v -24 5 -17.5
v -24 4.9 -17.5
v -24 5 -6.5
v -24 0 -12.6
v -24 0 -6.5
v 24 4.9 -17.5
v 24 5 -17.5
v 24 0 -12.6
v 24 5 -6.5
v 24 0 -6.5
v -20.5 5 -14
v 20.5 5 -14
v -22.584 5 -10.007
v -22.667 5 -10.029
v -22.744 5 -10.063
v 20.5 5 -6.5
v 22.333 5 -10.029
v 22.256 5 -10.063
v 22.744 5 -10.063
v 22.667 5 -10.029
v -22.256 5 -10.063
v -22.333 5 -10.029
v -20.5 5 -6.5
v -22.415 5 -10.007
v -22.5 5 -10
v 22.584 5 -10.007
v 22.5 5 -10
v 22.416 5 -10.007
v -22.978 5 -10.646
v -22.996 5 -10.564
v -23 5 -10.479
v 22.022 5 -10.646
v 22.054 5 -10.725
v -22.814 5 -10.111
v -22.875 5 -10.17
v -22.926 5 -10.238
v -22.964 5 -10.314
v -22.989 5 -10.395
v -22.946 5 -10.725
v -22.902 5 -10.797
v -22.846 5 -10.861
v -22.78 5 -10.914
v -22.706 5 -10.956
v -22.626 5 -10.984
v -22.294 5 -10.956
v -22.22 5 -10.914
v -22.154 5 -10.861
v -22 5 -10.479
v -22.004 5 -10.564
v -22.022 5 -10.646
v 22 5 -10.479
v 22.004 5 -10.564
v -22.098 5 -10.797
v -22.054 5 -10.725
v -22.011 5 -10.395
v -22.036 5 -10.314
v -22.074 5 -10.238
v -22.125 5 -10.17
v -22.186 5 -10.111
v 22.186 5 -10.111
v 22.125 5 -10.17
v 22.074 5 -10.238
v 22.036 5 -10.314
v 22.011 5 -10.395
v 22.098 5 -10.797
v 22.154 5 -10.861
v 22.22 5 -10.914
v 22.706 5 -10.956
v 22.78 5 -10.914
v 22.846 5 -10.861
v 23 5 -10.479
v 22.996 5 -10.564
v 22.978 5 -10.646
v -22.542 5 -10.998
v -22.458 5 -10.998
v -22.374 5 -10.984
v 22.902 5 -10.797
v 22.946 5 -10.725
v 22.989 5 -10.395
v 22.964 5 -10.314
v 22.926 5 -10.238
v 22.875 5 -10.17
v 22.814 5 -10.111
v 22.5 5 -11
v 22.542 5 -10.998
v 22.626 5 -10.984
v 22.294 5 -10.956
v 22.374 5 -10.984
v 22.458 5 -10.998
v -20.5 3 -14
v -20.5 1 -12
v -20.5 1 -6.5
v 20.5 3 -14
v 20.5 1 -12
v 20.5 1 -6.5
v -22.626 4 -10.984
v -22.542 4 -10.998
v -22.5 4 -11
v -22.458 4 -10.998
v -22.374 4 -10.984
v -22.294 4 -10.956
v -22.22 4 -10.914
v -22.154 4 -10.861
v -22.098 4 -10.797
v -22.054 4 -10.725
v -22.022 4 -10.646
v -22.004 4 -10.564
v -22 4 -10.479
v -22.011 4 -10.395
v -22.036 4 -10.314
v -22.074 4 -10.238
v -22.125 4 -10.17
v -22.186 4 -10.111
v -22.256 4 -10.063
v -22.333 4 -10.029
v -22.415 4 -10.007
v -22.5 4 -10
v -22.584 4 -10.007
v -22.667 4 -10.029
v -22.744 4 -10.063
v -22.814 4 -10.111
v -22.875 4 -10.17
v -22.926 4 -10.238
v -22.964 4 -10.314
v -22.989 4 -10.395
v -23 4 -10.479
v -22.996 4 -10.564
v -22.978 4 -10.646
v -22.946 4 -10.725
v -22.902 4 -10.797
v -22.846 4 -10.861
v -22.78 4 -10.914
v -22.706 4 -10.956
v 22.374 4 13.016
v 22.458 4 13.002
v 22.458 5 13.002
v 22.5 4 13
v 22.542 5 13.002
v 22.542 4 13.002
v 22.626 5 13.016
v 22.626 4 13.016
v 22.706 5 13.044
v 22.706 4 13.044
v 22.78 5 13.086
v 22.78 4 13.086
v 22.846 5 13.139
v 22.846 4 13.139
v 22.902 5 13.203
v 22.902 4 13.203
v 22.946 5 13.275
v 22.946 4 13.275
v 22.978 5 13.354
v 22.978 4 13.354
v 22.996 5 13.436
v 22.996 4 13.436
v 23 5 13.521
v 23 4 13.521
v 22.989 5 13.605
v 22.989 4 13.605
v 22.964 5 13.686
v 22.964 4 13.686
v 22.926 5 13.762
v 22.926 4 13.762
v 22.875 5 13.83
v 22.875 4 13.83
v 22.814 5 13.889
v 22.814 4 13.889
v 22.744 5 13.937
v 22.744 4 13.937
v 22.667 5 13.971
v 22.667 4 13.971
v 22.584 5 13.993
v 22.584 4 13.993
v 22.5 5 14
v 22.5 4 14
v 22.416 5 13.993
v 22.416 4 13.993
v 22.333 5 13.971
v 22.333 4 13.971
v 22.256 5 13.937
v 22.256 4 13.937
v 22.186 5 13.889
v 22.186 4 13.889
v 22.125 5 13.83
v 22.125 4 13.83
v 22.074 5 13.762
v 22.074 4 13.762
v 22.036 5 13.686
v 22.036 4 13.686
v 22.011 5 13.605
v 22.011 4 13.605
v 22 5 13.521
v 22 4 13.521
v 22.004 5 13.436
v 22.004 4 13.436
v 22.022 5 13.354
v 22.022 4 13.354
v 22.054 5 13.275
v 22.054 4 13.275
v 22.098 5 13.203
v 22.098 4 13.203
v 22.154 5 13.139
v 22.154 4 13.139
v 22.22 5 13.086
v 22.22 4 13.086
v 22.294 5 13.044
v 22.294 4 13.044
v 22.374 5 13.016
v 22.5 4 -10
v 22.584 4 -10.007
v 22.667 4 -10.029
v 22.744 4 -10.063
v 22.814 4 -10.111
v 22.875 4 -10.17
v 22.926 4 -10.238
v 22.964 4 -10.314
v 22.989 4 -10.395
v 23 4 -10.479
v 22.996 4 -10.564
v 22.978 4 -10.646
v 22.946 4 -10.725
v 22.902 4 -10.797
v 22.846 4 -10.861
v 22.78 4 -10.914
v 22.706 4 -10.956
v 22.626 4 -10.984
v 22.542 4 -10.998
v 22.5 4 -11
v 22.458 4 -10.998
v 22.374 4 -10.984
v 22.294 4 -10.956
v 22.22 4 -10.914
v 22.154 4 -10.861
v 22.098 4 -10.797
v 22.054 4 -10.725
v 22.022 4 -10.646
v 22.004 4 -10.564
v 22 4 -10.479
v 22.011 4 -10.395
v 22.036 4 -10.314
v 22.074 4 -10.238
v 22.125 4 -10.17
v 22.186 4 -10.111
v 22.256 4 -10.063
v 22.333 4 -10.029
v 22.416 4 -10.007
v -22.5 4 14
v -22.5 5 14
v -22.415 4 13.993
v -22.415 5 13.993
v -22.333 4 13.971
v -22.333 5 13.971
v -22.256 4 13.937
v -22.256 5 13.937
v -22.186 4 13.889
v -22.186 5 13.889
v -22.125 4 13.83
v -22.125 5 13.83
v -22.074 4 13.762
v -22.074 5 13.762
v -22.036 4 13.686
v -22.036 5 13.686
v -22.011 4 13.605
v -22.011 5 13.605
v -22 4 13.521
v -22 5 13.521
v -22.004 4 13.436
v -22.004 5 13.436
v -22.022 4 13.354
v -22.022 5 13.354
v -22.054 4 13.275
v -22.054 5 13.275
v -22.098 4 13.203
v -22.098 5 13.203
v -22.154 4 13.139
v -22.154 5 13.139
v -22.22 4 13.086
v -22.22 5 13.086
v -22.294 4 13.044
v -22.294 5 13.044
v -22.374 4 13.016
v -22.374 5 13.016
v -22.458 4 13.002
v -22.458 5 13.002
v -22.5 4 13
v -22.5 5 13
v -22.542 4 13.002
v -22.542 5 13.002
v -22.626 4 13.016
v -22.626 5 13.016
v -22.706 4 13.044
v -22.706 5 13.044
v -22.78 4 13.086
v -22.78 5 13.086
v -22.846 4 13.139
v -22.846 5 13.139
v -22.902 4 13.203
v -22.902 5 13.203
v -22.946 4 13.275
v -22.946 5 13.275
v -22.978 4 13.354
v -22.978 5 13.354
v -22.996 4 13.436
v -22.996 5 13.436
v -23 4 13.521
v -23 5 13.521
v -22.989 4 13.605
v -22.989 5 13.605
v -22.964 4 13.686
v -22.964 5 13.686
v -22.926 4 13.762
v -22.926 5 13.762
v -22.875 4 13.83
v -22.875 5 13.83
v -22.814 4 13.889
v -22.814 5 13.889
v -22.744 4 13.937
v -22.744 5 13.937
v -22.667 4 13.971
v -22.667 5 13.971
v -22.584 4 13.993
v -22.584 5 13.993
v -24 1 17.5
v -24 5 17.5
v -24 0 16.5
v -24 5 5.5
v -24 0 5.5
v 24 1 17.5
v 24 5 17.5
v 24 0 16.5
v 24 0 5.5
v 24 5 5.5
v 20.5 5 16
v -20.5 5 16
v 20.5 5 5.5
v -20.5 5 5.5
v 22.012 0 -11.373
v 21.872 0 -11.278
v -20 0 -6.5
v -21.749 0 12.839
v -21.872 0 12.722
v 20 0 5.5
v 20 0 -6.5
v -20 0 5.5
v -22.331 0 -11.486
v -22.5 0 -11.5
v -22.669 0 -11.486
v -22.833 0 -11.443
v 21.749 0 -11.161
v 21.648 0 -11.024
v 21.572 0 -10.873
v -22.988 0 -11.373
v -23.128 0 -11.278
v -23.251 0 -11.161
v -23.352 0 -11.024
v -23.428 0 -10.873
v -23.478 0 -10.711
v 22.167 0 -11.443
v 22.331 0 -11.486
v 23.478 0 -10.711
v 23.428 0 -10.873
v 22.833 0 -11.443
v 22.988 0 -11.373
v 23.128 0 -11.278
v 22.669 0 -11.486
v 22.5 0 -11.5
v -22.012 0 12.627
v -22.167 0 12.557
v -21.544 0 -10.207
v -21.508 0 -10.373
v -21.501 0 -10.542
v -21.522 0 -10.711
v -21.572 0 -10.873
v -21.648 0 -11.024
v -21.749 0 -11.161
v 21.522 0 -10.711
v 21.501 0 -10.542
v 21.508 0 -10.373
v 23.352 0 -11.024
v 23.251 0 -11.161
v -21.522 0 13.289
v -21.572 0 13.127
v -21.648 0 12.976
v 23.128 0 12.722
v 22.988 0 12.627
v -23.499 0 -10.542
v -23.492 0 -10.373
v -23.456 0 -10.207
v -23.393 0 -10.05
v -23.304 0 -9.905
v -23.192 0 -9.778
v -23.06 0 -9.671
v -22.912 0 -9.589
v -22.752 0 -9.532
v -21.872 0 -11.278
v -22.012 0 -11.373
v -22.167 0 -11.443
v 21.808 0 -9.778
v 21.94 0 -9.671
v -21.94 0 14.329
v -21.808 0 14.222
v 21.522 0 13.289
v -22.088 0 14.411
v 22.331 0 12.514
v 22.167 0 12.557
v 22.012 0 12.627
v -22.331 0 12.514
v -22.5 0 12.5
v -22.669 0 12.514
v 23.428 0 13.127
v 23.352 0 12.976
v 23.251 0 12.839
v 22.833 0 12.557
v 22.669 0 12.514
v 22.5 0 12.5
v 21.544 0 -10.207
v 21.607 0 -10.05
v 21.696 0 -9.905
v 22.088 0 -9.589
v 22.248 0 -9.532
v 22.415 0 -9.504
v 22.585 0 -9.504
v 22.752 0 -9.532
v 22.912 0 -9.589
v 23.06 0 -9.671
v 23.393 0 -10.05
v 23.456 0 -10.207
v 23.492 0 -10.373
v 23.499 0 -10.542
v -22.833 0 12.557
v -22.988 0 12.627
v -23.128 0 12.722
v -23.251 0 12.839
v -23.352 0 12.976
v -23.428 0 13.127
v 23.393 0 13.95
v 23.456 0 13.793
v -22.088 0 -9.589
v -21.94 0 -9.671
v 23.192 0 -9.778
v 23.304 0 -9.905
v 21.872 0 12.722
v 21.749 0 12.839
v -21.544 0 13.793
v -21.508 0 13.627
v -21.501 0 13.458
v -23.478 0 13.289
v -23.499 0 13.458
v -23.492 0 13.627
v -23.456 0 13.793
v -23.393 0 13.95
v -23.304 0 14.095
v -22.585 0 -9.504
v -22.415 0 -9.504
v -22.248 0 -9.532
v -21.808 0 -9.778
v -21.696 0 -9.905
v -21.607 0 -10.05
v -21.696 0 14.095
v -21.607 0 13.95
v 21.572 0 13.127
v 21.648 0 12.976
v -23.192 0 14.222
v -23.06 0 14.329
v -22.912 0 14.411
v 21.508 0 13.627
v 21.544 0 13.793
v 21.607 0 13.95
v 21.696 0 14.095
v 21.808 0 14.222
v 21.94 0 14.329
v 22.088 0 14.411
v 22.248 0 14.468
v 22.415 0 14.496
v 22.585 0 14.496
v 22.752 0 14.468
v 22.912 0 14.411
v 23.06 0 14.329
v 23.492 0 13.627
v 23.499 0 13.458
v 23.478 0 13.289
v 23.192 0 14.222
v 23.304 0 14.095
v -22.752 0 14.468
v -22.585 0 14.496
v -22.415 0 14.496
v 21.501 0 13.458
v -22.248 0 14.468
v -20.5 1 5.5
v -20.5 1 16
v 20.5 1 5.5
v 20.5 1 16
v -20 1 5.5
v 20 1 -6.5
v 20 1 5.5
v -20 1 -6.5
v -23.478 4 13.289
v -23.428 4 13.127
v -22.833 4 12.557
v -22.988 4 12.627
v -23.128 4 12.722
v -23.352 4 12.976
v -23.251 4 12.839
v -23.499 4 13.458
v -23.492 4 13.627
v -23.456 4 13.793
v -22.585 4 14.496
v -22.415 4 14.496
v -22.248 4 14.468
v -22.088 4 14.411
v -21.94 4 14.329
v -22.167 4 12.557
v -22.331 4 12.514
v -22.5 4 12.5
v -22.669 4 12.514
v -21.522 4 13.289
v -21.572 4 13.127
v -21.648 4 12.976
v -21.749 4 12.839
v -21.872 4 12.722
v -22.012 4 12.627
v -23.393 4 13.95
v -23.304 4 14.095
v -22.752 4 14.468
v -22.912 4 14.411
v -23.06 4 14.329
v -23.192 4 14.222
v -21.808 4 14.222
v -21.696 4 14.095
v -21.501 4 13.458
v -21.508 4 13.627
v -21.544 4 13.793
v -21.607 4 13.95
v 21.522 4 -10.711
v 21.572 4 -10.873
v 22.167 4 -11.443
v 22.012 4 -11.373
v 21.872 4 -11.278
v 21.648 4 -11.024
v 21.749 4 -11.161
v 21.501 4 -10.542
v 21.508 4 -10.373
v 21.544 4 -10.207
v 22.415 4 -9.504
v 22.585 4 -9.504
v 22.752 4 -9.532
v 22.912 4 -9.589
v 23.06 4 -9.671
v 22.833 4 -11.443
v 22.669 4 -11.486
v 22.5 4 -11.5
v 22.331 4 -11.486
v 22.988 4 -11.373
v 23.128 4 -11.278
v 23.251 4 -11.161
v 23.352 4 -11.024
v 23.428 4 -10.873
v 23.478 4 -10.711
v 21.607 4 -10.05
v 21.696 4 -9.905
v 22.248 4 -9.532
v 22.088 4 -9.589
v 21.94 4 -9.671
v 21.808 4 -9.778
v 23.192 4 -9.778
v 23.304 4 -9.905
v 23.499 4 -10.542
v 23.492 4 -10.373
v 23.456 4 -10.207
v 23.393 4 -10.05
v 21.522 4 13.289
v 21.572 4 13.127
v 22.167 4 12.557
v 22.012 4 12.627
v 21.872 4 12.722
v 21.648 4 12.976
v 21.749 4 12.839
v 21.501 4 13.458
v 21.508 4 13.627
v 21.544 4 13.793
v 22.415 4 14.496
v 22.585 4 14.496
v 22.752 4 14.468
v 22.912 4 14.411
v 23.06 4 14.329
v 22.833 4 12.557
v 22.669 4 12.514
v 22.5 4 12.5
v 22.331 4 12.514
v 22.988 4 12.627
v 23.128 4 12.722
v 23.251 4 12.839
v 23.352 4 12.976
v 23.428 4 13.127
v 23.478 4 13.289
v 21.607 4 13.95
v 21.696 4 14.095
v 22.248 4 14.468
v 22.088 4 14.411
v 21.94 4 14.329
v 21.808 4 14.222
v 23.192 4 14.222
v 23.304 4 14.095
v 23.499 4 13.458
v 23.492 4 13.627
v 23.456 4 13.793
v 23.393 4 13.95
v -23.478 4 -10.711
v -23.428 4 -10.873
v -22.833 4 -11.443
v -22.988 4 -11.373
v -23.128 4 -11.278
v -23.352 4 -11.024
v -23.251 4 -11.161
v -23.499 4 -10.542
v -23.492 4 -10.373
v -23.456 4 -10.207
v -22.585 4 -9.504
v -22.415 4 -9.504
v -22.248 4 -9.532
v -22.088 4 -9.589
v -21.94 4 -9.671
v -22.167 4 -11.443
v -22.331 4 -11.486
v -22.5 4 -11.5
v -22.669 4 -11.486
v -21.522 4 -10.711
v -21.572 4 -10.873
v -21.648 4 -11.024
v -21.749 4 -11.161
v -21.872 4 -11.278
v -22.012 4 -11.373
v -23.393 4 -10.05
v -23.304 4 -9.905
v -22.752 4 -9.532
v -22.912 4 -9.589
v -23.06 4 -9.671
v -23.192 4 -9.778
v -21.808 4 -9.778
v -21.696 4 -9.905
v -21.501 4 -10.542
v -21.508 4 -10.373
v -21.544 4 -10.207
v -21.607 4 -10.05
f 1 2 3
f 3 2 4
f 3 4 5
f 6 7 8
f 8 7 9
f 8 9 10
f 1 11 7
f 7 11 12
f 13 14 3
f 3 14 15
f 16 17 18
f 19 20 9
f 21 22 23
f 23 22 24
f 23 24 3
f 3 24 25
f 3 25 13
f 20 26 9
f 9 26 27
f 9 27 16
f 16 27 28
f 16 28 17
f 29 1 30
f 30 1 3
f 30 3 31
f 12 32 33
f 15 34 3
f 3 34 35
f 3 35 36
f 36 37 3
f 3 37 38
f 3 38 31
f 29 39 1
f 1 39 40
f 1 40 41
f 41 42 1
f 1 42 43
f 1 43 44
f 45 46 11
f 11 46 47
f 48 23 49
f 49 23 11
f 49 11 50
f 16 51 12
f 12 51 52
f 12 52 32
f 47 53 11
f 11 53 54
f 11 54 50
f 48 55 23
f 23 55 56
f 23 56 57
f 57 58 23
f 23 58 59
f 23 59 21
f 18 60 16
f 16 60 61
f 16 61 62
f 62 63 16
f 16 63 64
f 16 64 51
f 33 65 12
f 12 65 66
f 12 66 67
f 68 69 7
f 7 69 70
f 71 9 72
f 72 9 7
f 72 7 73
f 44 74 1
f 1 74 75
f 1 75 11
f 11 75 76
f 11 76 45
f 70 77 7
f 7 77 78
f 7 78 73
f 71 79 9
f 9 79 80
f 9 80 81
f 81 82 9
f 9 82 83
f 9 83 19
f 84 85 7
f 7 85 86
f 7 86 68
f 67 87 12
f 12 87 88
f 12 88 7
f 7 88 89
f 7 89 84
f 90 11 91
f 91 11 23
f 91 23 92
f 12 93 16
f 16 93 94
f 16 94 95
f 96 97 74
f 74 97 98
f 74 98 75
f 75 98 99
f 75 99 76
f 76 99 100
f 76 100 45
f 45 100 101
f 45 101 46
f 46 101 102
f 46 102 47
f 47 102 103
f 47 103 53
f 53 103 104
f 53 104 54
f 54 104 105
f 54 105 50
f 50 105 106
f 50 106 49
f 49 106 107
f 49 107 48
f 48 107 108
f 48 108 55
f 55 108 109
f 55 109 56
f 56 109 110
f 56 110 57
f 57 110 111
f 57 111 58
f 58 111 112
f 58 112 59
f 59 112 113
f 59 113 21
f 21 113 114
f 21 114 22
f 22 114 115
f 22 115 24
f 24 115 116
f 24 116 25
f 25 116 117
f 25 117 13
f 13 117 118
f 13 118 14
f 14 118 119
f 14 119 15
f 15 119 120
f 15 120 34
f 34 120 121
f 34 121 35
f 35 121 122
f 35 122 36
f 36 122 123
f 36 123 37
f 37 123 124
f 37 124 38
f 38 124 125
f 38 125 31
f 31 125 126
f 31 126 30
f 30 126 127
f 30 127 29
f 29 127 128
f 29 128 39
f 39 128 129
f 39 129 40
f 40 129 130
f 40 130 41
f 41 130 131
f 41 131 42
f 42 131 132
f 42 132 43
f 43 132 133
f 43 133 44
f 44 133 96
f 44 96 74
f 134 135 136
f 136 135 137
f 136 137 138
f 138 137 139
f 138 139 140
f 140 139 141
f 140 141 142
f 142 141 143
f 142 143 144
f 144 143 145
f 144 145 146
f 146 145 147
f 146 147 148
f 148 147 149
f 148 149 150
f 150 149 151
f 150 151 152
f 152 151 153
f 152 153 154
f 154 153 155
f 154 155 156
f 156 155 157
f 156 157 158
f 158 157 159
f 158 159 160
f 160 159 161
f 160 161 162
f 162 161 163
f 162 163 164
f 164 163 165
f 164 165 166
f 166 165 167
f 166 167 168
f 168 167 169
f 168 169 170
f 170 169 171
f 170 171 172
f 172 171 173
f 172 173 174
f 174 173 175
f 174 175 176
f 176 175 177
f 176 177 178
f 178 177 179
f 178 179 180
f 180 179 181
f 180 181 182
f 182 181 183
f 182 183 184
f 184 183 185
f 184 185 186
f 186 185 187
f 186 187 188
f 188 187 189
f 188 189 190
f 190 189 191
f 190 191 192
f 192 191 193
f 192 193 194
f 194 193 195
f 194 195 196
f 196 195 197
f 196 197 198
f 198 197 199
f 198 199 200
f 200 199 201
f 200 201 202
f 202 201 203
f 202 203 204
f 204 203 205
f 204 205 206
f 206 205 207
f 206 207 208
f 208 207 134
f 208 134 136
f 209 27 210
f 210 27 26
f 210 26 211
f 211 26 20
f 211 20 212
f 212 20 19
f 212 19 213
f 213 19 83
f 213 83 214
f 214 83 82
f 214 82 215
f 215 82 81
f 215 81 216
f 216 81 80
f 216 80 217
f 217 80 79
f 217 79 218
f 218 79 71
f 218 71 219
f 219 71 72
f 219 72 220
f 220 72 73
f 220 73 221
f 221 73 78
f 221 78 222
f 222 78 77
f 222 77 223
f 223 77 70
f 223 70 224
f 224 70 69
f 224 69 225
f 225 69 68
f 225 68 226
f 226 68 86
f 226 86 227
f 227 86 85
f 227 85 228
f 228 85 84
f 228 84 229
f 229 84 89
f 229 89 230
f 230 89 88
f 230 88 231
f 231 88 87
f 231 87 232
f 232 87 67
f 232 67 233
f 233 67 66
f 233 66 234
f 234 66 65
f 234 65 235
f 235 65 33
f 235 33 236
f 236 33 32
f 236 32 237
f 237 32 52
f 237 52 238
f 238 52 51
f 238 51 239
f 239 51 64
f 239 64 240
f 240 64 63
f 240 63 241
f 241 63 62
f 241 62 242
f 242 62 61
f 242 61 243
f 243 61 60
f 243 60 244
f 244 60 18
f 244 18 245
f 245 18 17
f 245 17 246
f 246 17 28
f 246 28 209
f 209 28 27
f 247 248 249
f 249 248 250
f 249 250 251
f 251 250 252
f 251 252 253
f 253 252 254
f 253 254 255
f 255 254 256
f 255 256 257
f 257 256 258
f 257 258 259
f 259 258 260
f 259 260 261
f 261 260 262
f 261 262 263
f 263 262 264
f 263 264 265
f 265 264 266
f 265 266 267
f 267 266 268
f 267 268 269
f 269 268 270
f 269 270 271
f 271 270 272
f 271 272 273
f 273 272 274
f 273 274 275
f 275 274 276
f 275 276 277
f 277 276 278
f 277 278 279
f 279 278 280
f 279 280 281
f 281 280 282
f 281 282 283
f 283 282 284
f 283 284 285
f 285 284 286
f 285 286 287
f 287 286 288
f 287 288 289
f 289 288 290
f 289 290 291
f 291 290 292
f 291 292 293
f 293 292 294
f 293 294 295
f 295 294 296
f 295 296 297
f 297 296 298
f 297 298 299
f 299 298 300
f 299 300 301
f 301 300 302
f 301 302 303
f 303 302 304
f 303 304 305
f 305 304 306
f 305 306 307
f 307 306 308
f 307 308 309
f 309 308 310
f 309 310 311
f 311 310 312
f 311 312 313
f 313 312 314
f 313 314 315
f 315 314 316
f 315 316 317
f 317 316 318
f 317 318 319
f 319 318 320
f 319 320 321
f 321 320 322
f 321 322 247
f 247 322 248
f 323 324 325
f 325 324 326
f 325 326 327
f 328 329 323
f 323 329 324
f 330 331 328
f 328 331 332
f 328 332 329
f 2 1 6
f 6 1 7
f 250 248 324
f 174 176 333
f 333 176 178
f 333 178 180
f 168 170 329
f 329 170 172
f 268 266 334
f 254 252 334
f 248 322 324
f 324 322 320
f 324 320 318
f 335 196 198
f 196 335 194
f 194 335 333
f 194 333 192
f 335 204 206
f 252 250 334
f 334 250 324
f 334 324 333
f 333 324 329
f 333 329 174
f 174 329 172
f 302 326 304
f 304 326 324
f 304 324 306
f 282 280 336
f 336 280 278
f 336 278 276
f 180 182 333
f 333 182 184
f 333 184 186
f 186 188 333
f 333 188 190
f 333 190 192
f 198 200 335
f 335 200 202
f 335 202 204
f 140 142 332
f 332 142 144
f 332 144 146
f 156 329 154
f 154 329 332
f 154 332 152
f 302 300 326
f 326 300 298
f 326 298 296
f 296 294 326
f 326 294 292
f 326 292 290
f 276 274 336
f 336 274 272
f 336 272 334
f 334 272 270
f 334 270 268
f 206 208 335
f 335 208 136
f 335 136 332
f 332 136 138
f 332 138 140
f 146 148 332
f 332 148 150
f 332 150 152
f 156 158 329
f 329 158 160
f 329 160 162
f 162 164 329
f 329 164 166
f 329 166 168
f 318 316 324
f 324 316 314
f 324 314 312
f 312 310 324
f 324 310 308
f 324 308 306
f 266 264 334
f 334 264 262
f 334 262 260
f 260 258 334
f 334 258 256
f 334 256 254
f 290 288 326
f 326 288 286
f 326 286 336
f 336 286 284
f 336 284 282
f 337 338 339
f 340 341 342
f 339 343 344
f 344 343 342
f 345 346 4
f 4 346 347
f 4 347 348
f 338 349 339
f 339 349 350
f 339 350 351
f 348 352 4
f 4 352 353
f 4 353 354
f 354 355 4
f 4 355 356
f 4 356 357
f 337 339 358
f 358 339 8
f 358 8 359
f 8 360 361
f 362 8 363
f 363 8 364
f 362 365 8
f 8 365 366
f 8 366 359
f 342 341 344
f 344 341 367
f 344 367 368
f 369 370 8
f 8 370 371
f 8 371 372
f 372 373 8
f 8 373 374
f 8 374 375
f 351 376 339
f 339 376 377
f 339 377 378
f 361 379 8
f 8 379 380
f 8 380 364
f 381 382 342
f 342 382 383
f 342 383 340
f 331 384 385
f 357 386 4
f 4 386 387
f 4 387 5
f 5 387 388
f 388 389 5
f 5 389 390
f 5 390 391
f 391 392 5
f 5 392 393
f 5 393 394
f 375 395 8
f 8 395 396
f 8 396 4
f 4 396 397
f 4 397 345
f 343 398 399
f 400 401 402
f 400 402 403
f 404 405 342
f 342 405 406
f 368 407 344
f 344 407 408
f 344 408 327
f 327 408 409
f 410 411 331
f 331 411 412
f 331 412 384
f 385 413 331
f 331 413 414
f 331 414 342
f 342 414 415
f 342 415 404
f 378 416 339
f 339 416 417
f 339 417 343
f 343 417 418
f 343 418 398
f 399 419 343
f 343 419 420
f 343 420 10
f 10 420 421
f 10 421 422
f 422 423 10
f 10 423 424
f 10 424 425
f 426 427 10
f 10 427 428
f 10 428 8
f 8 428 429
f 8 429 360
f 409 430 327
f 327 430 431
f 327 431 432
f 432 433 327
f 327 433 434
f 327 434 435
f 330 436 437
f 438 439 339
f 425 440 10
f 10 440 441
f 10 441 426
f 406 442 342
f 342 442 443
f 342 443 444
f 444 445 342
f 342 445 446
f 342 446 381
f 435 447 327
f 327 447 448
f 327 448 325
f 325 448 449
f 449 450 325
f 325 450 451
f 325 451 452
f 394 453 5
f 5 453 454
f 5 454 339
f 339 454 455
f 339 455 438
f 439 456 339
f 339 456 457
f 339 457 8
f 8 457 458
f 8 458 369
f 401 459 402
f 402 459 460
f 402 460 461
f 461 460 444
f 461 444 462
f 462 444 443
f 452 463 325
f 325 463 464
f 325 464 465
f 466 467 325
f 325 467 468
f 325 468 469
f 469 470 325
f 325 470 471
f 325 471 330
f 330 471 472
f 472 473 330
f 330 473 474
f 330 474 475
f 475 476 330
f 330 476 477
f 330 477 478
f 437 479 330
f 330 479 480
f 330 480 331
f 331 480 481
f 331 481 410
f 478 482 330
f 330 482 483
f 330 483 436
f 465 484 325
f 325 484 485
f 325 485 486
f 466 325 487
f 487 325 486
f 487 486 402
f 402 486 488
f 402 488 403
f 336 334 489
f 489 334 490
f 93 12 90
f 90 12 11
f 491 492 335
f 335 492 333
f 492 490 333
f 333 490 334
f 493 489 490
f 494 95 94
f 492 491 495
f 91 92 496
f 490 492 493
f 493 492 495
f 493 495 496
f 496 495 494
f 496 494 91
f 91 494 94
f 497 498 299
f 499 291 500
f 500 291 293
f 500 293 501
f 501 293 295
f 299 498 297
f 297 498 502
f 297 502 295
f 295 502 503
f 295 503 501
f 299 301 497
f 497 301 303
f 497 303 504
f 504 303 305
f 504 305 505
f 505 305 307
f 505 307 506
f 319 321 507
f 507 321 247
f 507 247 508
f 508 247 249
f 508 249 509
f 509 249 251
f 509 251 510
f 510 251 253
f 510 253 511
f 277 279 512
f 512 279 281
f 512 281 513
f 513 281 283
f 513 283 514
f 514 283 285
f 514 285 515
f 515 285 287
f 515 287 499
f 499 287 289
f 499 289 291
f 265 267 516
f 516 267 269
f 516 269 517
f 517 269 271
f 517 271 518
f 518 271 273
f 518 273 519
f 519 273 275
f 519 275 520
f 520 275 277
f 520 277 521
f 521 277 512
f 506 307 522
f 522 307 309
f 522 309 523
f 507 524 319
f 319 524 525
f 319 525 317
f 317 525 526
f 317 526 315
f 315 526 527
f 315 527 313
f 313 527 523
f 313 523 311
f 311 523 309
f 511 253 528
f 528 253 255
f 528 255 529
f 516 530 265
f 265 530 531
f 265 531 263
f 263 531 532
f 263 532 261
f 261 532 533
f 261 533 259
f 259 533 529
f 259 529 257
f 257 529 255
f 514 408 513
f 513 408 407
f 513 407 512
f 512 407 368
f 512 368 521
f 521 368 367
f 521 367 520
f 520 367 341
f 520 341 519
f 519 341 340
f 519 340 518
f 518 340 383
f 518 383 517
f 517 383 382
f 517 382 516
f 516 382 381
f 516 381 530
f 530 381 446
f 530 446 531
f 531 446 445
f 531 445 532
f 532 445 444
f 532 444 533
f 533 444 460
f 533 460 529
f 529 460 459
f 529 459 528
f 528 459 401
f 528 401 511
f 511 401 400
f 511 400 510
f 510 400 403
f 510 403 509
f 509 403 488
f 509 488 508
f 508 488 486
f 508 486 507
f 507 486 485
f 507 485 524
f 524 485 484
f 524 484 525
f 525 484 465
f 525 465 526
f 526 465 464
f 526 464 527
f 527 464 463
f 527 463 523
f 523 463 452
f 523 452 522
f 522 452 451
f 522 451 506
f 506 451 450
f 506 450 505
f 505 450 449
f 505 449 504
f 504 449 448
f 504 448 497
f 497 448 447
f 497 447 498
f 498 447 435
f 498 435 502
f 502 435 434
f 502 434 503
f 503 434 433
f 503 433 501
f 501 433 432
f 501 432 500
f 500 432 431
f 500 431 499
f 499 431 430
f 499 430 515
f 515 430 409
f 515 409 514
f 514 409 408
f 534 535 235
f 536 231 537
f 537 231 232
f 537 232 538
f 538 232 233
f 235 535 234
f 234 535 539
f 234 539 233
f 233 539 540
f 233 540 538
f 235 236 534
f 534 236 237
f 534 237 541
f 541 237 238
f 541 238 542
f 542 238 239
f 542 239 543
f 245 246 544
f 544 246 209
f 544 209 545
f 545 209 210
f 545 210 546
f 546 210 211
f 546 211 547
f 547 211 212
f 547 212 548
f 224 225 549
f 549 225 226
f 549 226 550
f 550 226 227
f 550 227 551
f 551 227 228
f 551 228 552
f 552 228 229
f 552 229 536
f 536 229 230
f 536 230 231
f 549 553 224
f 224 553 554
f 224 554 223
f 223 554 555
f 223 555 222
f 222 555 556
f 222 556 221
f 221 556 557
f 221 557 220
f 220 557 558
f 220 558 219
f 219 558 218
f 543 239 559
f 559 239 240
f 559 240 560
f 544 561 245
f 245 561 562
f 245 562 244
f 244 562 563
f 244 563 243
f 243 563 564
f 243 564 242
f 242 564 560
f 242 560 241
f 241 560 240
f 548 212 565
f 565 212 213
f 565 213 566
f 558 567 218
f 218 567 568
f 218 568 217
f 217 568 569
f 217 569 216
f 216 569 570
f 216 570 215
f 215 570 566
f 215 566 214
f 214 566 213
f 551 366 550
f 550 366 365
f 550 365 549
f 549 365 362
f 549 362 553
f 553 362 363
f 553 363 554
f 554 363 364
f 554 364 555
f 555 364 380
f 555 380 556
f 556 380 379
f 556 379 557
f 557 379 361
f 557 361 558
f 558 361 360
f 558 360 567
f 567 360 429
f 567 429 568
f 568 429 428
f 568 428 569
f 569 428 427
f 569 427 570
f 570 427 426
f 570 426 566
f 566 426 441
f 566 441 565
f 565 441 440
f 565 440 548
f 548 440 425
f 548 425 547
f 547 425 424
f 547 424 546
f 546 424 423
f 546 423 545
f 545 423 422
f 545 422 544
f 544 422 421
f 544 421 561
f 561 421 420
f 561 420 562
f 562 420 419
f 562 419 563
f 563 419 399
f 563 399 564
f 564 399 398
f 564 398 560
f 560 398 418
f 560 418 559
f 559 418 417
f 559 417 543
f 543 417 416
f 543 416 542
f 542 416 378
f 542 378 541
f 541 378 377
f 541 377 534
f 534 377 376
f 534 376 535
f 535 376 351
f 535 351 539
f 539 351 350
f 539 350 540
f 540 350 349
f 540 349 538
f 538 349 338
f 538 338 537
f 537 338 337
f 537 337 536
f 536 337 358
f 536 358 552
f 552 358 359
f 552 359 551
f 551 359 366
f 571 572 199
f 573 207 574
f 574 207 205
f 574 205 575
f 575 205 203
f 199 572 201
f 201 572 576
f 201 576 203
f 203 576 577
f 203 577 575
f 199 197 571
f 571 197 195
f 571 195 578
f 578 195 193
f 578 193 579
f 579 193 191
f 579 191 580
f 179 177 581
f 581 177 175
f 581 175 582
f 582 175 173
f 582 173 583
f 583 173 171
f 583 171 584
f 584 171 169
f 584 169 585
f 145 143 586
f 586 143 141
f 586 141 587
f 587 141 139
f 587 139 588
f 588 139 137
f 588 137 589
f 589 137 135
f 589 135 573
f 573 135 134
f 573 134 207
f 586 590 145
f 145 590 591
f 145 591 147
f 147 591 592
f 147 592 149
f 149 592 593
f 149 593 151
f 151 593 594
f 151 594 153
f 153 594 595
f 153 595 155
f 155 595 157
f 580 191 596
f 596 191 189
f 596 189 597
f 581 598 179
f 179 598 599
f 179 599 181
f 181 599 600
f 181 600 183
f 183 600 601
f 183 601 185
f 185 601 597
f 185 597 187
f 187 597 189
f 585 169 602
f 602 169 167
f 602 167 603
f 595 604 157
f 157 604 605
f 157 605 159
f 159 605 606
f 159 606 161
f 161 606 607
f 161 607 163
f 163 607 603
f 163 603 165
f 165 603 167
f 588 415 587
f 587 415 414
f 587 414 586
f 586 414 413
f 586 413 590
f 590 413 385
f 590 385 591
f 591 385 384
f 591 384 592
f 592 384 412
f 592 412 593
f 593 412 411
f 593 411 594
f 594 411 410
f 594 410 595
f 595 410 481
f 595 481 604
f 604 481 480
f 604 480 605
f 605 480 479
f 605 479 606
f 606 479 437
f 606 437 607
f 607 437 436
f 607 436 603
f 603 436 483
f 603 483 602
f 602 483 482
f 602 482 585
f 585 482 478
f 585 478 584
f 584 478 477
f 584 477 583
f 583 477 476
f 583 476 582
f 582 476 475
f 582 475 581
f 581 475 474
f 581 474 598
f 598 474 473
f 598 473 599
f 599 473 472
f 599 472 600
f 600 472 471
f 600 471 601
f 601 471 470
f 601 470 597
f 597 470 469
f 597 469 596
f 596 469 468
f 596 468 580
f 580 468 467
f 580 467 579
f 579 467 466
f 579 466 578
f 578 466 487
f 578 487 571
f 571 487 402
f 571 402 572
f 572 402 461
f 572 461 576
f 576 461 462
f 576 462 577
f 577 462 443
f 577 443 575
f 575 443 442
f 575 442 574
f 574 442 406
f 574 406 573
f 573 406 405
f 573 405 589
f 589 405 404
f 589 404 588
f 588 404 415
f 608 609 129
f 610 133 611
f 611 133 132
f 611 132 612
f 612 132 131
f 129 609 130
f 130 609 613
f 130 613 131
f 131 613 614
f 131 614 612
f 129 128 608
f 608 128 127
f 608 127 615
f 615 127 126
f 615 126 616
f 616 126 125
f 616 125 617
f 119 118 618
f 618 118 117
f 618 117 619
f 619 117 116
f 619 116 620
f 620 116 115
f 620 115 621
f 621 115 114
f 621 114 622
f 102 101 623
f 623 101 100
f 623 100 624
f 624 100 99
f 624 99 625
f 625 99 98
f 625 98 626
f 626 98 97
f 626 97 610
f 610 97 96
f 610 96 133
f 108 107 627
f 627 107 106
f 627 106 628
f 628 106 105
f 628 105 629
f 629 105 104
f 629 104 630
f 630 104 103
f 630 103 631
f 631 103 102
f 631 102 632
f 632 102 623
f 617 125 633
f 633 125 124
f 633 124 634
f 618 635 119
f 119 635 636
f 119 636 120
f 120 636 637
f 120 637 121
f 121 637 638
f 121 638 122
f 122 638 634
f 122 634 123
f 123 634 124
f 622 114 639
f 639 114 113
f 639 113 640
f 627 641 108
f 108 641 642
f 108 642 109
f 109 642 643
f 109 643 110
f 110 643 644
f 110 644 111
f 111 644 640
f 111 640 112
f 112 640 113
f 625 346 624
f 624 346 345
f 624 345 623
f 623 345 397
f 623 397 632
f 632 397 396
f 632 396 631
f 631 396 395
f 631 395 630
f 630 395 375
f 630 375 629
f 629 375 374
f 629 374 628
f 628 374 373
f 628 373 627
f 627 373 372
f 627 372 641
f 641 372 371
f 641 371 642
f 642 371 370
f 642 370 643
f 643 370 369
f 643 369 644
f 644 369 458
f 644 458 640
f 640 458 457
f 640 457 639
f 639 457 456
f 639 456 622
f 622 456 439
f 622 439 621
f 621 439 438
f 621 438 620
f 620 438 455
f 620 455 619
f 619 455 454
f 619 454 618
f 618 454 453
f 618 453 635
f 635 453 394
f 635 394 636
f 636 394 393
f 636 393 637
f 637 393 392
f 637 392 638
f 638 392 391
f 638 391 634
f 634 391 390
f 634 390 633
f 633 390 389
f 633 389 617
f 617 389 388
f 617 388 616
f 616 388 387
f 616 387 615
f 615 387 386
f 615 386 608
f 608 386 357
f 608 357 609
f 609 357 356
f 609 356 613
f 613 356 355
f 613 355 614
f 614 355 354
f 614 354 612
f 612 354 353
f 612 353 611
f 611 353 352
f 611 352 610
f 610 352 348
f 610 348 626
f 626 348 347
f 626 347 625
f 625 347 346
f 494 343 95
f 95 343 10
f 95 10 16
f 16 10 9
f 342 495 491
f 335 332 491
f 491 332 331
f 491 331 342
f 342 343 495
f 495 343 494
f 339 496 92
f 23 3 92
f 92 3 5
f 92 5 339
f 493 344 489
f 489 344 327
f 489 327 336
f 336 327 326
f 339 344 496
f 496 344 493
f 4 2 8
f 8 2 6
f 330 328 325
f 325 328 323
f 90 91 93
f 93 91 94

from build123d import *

# Parameters (mm, degrees)
SKETCH_1_W          = 48
SKETCH_1_H          = 35
EXTRUDE_1_DEPTH     = 5
SKETCH_2_W          = 41
SKETCH_2_H          = 30
CUT_EXTRUDE_1_DEPTH = 4
SKETCH_3_R          = 0.5
CUT_EXTRUDE_2_DEPTH = 6
SKETCH_4_R          = 1
CUT_EXTRUDE_5_DEPTH = 4
SKETCH_5_W          = 4
SKETCH_5_H          = 12
CUT_EXTRUDE_4_DEPTH = 6
CHAMFER_2_SIZE      = 4.9
CHAMFER_3_SIZE      = 1
CHAMFER_6_SIZE      = 2


with BuildPart() as part:
    # 草图1 → 凸台-拉伸1 (new body)
    with BuildSketch(Plane(origin=(0, 0, 0), x_dir=(1, 0, 0), z_dir=(0, 1, 0))):
        Rectangle(SKETCH_1_W, SKETCH_1_H)
    extrude(amount=EXTRUDE_1_DEPTH)

    # 草图2 → 切除-拉伸1 (cut)
    with BuildSketch(Plane(origin=(0, 5, 0), x_dir=(1, 0, 0), z_dir=(0, 1, 0))):
        with Locations((0, -1)):
            Rectangle(SKETCH_2_W, SKETCH_2_H)
    extrude(amount=-CUT_EXTRUDE_1_DEPTH, mode=Mode.SUBTRACT)

    # 草图3 → 切除-拉伸2 (cut, through all)
    with BuildSketch(Plane(origin=(0, 5, 0), x_dir=(1, 0, 0), z_dir=(0, 1, 0))):
        with Locations((-22.5, 10.5)):
            Circle(SKETCH_3_R)
        with Locations((-22.5, -13.5)):
            Circle(SKETCH_3_R)
        with Locations((22.5, -13.5)):
            Circle(SKETCH_3_R)
        with Locations((22.5, 10.5)):
            Circle(SKETCH_3_R)
    extrude(amount=-CUT_EXTRUDE_2_DEPTH, mode=Mode.SUBTRACT)

    # 草图4 → 切除-拉伸5 (cut)
    with BuildSketch(Plane.XZ):
        with Locations((-22.5, -10.5)):
            Circle(SKETCH_4_R)
        with Locations((-22.5, 13.5)):
            Circle(SKETCH_4_R)
        with Locations((22.5, 13.5)):
            Circle(SKETCH_4_R)
        with Locations((22.5, -10.5)):
            Circle(SKETCH_4_R)
    extrude(amount=-CUT_EXTRUDE_5_DEPTH, mode=Mode.SUBTRACT)

    # 草图5 → 切除-拉伸4 (cut, through all)
    with BuildSketch(Plane(origin=(0, 5, 0), x_dir=(1, 0, 0), z_dir=(0, 1, 0))):
        with Locations((-22, 0.5)):
            Rectangle(SKETCH_5_W, SKETCH_5_H)
        with Locations((22, 0.5)):
            Rectangle(SKETCH_5_W, SKETCH_5_H)
    extrude(amount=-CUT_EXTRUDE_4_DEPTH, mode=Mode.SUBTRACT)

    # 倒角2
    chamfer_2_edges = [part.edges().sort_by_distance(p)[0] for p in [
        (0, 0, -17.5),
    ]]
    chamfer(chamfer_2_edges, length=CHAMFER_2_SIZE)

    # 倒角3
    chamfer_3_edges = [part.edges().sort_by_distance(p)[0] for p in [
        (0, 0, 17.5),
    ]]
    chamfer(chamfer_3_edges, length=CHAMFER_3_SIZE)

    # 倒角6
    chamfer_6_edges = [part.edges().sort_by_distance(p)[0] for p in [
        (0, 1, -14),
    ]]
    chamfer(chamfer_6_edges, length=CHAMFER_6_SIZE)


solid = part.part
